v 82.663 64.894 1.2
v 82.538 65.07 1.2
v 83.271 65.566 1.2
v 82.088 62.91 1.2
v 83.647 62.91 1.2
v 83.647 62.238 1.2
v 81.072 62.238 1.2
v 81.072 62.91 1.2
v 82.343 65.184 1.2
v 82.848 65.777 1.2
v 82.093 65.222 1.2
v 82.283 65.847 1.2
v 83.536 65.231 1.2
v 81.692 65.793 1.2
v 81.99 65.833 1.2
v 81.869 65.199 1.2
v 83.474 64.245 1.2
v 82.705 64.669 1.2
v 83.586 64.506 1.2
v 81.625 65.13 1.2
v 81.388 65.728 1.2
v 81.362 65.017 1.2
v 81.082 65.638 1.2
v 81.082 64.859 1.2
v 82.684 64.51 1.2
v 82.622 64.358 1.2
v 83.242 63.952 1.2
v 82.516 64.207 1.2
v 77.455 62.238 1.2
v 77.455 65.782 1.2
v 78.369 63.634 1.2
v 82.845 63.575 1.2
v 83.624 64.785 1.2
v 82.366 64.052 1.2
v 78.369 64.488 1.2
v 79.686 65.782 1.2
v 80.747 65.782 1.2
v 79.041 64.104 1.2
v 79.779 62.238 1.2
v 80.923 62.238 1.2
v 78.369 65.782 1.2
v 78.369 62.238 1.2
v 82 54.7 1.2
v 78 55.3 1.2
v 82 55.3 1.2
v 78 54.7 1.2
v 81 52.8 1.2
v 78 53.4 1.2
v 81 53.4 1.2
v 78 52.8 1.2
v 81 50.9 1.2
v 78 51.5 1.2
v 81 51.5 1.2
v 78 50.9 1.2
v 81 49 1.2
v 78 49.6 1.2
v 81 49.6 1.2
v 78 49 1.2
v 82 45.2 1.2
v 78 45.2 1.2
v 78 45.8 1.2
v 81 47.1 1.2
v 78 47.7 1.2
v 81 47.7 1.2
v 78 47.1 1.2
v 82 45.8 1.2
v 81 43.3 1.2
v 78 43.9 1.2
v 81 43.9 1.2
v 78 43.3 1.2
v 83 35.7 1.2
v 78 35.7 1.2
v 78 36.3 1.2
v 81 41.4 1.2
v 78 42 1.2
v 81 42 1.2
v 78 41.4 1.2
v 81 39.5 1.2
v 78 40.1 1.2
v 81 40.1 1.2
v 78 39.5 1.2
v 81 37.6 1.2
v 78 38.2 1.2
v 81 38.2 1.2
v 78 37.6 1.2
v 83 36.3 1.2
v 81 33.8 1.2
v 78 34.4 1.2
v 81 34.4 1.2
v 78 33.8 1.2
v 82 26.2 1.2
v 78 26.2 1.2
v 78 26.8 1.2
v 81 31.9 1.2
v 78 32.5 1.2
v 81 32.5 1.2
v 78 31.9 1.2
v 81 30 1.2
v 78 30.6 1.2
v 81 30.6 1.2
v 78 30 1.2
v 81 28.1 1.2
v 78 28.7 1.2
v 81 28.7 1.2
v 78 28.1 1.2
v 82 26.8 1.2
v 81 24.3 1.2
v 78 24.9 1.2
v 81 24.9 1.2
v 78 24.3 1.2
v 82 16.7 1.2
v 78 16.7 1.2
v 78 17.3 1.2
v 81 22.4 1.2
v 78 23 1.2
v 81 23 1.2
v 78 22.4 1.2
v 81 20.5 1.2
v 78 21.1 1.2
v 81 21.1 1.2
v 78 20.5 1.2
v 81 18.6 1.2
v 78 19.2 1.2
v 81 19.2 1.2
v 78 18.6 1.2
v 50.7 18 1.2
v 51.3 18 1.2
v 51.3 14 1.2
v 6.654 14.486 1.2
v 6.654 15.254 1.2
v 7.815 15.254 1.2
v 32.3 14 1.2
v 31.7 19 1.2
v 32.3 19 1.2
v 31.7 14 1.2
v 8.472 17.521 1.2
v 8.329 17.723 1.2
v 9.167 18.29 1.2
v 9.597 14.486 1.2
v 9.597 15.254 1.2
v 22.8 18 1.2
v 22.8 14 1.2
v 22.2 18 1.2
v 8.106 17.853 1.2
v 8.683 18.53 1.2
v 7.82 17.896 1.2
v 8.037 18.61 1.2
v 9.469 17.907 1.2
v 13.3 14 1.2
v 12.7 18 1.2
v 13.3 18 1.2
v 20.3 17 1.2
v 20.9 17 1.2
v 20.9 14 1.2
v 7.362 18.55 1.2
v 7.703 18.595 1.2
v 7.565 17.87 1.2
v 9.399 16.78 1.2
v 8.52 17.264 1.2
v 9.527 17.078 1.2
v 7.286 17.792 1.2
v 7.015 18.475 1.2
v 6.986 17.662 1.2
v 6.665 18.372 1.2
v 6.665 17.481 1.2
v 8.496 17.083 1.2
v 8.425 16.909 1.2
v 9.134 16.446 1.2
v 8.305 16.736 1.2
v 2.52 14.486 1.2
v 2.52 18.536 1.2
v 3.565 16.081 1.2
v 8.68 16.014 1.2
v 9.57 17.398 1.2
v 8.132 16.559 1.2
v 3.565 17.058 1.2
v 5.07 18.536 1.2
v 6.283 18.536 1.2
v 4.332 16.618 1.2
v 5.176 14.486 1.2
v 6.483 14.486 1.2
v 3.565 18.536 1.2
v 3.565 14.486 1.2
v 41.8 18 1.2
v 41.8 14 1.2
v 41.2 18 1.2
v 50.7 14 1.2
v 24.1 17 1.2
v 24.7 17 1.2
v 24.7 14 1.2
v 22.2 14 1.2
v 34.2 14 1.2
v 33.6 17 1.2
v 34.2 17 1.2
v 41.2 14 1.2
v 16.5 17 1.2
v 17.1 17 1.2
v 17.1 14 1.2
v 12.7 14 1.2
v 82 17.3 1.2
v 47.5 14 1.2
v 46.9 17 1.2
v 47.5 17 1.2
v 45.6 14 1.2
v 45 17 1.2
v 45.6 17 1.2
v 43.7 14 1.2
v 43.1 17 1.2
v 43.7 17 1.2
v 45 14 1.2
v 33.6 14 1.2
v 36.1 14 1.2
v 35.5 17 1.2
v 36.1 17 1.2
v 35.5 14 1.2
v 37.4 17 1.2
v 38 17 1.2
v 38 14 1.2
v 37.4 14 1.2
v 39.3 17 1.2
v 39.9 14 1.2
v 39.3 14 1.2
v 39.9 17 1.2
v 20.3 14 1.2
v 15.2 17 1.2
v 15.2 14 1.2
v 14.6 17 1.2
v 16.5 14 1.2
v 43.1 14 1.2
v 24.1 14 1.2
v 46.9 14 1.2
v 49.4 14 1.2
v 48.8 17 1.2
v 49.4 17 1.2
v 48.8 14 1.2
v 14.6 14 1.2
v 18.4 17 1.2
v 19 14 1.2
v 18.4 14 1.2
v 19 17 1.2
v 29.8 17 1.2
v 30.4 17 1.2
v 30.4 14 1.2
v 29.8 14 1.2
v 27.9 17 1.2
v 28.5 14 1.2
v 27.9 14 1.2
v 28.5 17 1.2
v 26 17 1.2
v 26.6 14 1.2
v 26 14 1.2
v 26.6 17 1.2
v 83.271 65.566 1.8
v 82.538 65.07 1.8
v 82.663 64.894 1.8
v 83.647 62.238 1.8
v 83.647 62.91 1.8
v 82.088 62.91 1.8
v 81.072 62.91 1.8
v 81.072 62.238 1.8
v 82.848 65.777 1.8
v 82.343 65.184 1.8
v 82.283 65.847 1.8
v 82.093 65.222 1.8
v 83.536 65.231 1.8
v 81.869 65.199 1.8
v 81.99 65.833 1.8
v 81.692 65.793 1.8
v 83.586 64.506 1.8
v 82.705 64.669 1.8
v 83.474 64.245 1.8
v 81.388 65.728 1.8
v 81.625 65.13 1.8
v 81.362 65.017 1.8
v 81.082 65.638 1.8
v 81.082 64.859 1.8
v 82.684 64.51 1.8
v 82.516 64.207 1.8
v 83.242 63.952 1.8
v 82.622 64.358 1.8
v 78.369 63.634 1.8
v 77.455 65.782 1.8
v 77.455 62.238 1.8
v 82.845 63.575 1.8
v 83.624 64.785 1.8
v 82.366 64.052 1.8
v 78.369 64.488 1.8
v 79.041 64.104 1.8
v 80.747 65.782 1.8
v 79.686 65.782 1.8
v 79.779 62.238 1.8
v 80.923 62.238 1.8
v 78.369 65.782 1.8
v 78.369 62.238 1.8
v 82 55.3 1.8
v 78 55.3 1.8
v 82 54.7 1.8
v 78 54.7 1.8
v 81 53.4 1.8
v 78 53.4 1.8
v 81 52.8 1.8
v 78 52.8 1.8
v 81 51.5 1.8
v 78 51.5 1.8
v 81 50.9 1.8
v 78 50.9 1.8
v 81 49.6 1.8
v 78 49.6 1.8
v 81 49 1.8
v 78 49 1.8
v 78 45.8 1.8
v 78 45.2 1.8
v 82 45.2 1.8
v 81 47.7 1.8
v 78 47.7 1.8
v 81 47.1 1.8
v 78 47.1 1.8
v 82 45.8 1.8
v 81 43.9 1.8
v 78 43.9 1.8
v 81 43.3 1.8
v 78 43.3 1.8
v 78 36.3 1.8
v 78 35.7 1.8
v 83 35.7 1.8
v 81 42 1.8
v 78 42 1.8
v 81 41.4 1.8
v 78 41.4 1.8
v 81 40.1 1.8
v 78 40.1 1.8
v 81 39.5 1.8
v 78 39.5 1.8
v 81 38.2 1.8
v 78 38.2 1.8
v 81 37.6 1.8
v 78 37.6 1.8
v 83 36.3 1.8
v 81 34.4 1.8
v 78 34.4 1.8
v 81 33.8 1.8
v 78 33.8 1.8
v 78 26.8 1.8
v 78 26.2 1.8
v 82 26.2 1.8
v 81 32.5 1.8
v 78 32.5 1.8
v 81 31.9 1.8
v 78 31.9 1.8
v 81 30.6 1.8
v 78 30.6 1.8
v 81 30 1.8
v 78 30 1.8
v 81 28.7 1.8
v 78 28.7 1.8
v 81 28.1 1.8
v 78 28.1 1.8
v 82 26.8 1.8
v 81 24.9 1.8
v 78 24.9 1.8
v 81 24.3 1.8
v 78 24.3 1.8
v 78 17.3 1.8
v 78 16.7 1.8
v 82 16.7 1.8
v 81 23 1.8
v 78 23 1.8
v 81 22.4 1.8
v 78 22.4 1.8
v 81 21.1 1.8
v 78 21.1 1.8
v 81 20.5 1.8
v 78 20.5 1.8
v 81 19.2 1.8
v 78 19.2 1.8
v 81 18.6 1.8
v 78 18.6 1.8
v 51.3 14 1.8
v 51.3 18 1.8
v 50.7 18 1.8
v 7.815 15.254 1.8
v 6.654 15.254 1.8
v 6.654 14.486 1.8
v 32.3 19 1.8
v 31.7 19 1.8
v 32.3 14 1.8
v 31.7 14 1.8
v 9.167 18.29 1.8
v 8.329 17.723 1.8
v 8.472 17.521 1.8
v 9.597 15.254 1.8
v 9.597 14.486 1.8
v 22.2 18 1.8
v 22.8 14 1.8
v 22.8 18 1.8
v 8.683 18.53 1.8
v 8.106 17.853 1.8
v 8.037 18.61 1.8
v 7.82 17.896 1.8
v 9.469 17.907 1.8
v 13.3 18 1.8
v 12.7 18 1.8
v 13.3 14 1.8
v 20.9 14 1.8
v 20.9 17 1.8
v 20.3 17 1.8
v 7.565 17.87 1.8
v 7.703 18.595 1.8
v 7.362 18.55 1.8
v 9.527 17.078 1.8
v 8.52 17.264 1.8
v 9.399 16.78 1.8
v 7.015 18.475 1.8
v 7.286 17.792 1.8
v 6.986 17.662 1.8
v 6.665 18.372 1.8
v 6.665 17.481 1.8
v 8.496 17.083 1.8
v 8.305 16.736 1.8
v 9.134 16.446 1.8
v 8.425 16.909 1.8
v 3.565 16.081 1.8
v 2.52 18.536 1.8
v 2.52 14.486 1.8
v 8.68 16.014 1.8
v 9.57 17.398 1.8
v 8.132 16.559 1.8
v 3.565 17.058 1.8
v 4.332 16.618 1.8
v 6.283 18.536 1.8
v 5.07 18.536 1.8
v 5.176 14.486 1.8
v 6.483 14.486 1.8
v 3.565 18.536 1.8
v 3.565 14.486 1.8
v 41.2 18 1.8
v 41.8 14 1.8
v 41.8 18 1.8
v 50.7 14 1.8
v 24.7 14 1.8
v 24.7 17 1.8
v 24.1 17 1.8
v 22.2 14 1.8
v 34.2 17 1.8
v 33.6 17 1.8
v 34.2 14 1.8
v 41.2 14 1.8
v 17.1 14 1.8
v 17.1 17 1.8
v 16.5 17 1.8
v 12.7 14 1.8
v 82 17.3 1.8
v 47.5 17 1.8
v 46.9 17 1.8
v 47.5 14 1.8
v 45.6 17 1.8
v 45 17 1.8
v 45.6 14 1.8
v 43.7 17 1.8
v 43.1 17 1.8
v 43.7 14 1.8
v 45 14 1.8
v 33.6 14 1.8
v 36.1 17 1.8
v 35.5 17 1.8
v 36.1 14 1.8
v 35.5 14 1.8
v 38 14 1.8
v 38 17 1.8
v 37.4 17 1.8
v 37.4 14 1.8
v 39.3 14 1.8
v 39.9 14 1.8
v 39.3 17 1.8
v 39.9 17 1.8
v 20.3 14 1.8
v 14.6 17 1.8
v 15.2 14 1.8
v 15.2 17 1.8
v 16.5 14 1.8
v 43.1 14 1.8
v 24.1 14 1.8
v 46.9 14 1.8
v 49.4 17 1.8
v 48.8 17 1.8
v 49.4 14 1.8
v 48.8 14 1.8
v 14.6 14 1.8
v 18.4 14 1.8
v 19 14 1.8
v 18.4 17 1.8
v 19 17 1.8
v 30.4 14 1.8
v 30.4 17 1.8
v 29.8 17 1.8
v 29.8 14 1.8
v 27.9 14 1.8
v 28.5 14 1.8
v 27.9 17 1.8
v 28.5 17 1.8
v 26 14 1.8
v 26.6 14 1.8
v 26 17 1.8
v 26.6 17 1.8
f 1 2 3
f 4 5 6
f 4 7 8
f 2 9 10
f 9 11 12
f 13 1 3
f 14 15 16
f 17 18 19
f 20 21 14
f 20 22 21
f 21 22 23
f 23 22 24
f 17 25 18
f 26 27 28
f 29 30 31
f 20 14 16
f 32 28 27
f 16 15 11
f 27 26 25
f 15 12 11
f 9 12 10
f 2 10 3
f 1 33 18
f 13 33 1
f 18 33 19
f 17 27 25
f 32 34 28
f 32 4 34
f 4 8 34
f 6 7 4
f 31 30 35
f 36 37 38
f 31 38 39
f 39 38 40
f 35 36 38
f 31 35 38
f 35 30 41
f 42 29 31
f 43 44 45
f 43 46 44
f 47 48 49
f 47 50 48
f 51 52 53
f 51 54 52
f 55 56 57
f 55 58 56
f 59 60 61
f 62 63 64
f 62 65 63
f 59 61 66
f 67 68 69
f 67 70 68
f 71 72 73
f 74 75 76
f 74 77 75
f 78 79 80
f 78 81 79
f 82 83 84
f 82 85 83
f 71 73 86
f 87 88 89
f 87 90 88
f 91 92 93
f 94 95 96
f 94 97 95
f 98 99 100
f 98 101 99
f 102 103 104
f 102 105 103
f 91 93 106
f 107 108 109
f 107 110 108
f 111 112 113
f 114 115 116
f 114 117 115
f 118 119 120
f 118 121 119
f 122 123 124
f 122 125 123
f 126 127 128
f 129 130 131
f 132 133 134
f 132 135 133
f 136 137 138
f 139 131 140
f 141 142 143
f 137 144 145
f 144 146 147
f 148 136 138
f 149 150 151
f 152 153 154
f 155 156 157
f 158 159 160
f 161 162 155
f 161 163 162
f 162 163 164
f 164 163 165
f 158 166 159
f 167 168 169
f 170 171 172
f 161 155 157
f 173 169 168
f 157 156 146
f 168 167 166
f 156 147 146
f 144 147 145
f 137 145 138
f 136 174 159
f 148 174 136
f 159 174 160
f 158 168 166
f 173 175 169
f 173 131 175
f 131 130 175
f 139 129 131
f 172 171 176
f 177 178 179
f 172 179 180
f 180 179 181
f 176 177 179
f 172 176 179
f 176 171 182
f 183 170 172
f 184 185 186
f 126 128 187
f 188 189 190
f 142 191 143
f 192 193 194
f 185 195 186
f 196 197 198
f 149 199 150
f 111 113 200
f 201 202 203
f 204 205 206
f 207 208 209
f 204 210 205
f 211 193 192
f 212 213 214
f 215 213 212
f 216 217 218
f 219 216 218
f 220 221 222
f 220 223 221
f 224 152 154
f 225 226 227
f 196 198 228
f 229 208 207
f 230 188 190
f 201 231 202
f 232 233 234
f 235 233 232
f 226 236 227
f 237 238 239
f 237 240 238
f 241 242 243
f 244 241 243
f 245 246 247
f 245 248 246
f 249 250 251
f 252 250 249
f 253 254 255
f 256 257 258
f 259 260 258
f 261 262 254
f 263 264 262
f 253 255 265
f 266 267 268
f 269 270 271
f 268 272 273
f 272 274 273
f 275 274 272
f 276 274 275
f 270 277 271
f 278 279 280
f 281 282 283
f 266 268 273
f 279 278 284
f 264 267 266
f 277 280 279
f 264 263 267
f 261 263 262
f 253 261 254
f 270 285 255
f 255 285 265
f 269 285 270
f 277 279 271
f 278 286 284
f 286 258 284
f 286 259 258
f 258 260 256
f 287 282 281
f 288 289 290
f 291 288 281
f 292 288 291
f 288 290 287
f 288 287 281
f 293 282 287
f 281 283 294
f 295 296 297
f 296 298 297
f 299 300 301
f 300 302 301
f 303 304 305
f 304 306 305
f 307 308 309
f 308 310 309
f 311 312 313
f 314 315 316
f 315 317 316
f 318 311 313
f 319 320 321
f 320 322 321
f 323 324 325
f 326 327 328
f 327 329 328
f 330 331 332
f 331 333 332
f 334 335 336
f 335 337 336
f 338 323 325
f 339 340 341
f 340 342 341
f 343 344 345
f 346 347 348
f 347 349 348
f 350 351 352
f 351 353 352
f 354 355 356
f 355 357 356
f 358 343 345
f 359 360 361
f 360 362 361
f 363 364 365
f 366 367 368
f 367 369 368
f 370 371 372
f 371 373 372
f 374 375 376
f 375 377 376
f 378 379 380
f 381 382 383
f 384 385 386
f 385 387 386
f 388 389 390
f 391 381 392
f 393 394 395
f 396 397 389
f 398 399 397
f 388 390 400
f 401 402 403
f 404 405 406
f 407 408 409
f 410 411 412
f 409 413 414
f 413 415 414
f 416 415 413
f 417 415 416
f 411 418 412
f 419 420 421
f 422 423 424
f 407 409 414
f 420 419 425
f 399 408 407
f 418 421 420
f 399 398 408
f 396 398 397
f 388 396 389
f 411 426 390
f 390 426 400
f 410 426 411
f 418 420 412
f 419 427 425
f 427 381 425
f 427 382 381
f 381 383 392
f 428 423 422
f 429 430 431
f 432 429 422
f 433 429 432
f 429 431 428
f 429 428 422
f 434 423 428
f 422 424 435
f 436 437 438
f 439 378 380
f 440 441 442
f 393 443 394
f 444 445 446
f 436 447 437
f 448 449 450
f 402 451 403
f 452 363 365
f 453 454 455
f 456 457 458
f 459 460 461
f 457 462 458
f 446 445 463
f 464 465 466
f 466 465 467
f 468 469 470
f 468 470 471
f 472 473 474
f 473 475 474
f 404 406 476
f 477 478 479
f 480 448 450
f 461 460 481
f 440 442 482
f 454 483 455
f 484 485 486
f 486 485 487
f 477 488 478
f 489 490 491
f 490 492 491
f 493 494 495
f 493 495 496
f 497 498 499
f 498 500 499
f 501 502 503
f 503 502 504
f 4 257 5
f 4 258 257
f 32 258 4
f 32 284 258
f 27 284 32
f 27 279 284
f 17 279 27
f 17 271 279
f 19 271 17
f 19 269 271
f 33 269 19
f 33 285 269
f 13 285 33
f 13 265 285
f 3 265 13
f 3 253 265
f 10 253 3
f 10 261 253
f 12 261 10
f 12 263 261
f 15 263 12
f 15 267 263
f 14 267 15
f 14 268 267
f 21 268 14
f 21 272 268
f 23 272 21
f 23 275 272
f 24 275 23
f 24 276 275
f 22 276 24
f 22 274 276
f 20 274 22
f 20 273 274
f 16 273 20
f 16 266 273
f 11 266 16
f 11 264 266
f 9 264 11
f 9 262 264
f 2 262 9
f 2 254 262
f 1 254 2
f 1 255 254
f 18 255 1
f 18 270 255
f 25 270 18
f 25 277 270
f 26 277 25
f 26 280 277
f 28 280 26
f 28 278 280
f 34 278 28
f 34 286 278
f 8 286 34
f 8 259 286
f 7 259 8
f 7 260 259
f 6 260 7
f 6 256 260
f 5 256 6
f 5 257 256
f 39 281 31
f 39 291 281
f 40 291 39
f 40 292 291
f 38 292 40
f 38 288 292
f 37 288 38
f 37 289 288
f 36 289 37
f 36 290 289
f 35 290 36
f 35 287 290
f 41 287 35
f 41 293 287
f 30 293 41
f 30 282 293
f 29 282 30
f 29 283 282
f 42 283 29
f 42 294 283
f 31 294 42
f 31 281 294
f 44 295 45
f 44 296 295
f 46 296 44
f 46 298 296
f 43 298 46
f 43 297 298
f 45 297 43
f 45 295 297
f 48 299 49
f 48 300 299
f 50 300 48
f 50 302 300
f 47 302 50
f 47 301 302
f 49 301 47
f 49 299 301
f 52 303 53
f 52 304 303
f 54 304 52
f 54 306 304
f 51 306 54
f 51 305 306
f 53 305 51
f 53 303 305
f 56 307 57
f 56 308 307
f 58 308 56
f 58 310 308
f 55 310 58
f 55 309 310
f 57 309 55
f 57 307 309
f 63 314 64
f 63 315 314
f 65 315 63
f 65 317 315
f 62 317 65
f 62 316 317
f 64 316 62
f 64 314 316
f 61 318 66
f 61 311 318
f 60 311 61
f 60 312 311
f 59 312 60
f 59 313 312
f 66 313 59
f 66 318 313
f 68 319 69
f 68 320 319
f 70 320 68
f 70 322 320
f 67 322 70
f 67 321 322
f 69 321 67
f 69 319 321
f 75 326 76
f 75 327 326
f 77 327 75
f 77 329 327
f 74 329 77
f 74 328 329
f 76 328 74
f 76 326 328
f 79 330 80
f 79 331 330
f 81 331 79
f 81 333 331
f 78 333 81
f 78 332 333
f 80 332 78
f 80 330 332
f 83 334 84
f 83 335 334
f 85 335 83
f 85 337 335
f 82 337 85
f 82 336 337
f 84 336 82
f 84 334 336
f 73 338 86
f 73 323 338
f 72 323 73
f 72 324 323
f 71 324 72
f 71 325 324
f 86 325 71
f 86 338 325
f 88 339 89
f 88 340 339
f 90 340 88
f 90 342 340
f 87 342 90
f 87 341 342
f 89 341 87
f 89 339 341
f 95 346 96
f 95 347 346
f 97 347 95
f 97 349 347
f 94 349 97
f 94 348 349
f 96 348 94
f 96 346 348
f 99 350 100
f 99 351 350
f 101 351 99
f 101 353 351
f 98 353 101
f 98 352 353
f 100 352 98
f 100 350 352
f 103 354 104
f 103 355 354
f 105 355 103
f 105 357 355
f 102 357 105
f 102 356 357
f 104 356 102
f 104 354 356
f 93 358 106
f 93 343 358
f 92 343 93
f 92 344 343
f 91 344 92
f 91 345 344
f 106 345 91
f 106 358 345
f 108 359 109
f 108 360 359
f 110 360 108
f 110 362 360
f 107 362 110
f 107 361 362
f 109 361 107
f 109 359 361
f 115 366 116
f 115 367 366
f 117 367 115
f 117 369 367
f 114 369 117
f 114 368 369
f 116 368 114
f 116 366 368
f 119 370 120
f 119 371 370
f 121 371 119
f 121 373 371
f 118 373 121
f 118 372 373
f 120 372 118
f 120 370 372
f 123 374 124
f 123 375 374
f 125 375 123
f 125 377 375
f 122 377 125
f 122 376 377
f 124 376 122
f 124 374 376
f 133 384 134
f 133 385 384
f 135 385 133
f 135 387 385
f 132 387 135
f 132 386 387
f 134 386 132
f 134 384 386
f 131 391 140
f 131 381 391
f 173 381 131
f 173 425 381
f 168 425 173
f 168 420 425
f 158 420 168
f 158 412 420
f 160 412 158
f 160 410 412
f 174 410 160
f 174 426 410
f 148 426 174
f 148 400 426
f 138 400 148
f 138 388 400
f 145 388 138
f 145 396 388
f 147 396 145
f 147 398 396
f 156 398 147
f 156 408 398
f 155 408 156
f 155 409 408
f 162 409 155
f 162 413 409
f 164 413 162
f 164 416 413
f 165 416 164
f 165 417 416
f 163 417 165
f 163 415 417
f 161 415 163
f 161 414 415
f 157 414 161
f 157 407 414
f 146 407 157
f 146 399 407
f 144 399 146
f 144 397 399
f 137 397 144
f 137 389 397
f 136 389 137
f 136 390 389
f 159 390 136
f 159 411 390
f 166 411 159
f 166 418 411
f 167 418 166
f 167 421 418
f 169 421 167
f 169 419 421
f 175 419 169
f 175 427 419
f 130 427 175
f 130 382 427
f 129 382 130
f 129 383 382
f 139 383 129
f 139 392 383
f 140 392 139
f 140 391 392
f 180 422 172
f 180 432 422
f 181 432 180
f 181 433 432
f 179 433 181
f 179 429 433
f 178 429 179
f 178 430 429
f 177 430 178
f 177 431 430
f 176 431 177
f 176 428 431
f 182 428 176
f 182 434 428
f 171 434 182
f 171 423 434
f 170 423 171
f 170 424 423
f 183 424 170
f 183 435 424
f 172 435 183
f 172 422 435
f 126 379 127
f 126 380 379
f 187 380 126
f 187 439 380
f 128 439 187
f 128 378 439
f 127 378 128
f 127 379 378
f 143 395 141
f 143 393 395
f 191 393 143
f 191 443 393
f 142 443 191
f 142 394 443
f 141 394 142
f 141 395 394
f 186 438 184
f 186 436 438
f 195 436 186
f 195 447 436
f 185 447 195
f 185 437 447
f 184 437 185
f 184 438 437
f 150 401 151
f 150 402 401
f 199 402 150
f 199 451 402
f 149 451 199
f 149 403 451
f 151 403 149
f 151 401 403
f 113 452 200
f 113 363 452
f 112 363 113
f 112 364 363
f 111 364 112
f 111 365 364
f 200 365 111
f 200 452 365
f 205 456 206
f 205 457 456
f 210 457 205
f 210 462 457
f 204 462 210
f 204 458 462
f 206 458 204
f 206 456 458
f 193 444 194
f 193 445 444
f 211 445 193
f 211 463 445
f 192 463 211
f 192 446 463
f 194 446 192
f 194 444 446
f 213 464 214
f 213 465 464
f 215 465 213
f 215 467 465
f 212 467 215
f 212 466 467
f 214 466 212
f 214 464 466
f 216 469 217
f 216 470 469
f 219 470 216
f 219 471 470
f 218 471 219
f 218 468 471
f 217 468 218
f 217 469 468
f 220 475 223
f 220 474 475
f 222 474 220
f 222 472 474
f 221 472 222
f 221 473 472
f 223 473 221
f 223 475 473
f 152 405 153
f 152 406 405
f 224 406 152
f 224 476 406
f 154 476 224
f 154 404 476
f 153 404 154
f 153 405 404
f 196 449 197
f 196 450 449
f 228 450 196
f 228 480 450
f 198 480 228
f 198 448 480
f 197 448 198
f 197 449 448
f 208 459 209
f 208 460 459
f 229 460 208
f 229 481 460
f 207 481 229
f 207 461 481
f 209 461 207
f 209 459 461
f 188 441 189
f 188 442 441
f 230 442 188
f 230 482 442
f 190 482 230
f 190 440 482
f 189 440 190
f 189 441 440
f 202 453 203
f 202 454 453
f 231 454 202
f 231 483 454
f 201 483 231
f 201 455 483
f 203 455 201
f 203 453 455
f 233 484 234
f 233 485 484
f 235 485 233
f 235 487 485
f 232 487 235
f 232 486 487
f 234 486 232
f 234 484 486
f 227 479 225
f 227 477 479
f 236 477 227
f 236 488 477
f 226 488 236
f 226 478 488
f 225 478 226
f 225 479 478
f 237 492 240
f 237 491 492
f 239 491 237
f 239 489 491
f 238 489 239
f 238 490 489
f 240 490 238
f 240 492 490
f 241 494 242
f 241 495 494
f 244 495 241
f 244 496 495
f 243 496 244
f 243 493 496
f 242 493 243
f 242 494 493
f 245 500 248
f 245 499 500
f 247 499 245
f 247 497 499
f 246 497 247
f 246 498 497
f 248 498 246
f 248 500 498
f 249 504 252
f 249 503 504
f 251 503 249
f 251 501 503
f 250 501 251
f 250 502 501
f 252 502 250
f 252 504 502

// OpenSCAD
// file: versatz.scad
// Kalibrierung 3 – Kopf-Versatz (Vier-Kopf-Passermarke). Gemeinsame Geometrie für versatz_k1…k4.scad.
// Grundplatte + Hauptskalen = Kopf 1. Je Kopf 2–4 ein Nonius in X (Zeilen) und in Y (Spalten) + Beschriftung.
// Hauptskala Teilung 2,0 mm, Nonius 1,9 mm → Ablesung 0,1 mm, Bereich ±1,0 mm (Index −10…+10).
// Die Strichreihen von Kopf 1 und Kopf n stoßen an einer gemeinsamen Linie aneinander (nie überlappend).
platte = [112, 80, 1.2];    // Grundplatte (6 Schichten à 0,2)
erhaben = 0.6;              // Strich- und Schrifthöhe über der Platte
strich_b = 0.6;             // Strichbreite (≥ 1,5 × Düse)
strich_l = 3.0;             // Strichlänge je Reihe
haupt = 2.0; nonius = 1.9; n = 10;
schrift = "DejaVu Sans:style=Bold";
zeilen_y = [14, 38, 62];    // X-Nonien: Grenzlinie bei diesem y (Kopf 1 darunter, Kopf n darüber)
x_mitte = 32;
spalten_x = [78, 92, 106];  // Y-Nonien: Grenzlinie bei diesem x (Kopf 1 links, Kopf n rechts)
y_mitte = 36;

function _lang(i) = (i == 0) ? 2.0 : (i % 5 == 0) ? 1.0 : 0;   // längere Striche bei 0, ±5, ±10

module _striche_x(teil, aussen) {   // Striche senkrecht, entlang X; aussen = +1 nach oben, −1 nach unten
  for (i = [-n:n]) let(l = strich_l + _lang(i))
    translate([x_mitte + i*teil - strich_b/2, aussen > 0 ? 0 : -l]) square([strich_b, l]);
}
module _striche_y(teil, aussen) {
  for (i = [-n:n]) let(l = strich_l + _lang(i))
    translate([aussen > 0 ? 0 : -l, y_mitte + i*teil - strich_b/2]) square([l, strich_b]);
}
module _beschr(t, s=4) text(t, size=s, font=schrift, halign="center", valign="center");

module versatz(kopf) {
  if (kopf == 1) {
    cube(platte);
    translate([0,0,platte[2]-0.01]) linear_extrude(erhaben+0.01) {
      for (y = zeilen_y) translate([0, y]) _striche_x(haupt, -1);
      for (x = spalten_x) translate([x, 0]) _striche_y(haupt, -1);
      translate([x_mitte + n*haupt + 4.5, zeilen_y[0] - 6]) _beschr("+X", 3);
      translate([spalten_x[0] - 6, y_mitte + n*haupt + 4.5]) _beschr("+Y", 3);
      translate([8, 75]) _beschr("K1", 4);
    }
  } else {
    k = kopf - 2;
    translate([0,0,platte[2]]) linear_extrude(erhaben) {
      translate([0, zeilen_y[k]]) _striche_x(nonius, +1);
      translate([spalten_x[k], 0]) _striche_y(nonius, +1);
      translate([6, zeilen_y[k] + 2.5]) _beschr(str("K", kopf), 4);
      translate([spalten_x[k] + 2.5, y_mitte + n*haupt + 8]) _beschr(str("K", kopf), 3.5);
    }
  }
}
// main file
// Kalibrierung 3 – Kopf-Versatz, Farbkörper für Kopf 2 (gleiche Koordinaten wie die anderen versatz_k*.scad)
use <versatz.scad>
versatz(2);
